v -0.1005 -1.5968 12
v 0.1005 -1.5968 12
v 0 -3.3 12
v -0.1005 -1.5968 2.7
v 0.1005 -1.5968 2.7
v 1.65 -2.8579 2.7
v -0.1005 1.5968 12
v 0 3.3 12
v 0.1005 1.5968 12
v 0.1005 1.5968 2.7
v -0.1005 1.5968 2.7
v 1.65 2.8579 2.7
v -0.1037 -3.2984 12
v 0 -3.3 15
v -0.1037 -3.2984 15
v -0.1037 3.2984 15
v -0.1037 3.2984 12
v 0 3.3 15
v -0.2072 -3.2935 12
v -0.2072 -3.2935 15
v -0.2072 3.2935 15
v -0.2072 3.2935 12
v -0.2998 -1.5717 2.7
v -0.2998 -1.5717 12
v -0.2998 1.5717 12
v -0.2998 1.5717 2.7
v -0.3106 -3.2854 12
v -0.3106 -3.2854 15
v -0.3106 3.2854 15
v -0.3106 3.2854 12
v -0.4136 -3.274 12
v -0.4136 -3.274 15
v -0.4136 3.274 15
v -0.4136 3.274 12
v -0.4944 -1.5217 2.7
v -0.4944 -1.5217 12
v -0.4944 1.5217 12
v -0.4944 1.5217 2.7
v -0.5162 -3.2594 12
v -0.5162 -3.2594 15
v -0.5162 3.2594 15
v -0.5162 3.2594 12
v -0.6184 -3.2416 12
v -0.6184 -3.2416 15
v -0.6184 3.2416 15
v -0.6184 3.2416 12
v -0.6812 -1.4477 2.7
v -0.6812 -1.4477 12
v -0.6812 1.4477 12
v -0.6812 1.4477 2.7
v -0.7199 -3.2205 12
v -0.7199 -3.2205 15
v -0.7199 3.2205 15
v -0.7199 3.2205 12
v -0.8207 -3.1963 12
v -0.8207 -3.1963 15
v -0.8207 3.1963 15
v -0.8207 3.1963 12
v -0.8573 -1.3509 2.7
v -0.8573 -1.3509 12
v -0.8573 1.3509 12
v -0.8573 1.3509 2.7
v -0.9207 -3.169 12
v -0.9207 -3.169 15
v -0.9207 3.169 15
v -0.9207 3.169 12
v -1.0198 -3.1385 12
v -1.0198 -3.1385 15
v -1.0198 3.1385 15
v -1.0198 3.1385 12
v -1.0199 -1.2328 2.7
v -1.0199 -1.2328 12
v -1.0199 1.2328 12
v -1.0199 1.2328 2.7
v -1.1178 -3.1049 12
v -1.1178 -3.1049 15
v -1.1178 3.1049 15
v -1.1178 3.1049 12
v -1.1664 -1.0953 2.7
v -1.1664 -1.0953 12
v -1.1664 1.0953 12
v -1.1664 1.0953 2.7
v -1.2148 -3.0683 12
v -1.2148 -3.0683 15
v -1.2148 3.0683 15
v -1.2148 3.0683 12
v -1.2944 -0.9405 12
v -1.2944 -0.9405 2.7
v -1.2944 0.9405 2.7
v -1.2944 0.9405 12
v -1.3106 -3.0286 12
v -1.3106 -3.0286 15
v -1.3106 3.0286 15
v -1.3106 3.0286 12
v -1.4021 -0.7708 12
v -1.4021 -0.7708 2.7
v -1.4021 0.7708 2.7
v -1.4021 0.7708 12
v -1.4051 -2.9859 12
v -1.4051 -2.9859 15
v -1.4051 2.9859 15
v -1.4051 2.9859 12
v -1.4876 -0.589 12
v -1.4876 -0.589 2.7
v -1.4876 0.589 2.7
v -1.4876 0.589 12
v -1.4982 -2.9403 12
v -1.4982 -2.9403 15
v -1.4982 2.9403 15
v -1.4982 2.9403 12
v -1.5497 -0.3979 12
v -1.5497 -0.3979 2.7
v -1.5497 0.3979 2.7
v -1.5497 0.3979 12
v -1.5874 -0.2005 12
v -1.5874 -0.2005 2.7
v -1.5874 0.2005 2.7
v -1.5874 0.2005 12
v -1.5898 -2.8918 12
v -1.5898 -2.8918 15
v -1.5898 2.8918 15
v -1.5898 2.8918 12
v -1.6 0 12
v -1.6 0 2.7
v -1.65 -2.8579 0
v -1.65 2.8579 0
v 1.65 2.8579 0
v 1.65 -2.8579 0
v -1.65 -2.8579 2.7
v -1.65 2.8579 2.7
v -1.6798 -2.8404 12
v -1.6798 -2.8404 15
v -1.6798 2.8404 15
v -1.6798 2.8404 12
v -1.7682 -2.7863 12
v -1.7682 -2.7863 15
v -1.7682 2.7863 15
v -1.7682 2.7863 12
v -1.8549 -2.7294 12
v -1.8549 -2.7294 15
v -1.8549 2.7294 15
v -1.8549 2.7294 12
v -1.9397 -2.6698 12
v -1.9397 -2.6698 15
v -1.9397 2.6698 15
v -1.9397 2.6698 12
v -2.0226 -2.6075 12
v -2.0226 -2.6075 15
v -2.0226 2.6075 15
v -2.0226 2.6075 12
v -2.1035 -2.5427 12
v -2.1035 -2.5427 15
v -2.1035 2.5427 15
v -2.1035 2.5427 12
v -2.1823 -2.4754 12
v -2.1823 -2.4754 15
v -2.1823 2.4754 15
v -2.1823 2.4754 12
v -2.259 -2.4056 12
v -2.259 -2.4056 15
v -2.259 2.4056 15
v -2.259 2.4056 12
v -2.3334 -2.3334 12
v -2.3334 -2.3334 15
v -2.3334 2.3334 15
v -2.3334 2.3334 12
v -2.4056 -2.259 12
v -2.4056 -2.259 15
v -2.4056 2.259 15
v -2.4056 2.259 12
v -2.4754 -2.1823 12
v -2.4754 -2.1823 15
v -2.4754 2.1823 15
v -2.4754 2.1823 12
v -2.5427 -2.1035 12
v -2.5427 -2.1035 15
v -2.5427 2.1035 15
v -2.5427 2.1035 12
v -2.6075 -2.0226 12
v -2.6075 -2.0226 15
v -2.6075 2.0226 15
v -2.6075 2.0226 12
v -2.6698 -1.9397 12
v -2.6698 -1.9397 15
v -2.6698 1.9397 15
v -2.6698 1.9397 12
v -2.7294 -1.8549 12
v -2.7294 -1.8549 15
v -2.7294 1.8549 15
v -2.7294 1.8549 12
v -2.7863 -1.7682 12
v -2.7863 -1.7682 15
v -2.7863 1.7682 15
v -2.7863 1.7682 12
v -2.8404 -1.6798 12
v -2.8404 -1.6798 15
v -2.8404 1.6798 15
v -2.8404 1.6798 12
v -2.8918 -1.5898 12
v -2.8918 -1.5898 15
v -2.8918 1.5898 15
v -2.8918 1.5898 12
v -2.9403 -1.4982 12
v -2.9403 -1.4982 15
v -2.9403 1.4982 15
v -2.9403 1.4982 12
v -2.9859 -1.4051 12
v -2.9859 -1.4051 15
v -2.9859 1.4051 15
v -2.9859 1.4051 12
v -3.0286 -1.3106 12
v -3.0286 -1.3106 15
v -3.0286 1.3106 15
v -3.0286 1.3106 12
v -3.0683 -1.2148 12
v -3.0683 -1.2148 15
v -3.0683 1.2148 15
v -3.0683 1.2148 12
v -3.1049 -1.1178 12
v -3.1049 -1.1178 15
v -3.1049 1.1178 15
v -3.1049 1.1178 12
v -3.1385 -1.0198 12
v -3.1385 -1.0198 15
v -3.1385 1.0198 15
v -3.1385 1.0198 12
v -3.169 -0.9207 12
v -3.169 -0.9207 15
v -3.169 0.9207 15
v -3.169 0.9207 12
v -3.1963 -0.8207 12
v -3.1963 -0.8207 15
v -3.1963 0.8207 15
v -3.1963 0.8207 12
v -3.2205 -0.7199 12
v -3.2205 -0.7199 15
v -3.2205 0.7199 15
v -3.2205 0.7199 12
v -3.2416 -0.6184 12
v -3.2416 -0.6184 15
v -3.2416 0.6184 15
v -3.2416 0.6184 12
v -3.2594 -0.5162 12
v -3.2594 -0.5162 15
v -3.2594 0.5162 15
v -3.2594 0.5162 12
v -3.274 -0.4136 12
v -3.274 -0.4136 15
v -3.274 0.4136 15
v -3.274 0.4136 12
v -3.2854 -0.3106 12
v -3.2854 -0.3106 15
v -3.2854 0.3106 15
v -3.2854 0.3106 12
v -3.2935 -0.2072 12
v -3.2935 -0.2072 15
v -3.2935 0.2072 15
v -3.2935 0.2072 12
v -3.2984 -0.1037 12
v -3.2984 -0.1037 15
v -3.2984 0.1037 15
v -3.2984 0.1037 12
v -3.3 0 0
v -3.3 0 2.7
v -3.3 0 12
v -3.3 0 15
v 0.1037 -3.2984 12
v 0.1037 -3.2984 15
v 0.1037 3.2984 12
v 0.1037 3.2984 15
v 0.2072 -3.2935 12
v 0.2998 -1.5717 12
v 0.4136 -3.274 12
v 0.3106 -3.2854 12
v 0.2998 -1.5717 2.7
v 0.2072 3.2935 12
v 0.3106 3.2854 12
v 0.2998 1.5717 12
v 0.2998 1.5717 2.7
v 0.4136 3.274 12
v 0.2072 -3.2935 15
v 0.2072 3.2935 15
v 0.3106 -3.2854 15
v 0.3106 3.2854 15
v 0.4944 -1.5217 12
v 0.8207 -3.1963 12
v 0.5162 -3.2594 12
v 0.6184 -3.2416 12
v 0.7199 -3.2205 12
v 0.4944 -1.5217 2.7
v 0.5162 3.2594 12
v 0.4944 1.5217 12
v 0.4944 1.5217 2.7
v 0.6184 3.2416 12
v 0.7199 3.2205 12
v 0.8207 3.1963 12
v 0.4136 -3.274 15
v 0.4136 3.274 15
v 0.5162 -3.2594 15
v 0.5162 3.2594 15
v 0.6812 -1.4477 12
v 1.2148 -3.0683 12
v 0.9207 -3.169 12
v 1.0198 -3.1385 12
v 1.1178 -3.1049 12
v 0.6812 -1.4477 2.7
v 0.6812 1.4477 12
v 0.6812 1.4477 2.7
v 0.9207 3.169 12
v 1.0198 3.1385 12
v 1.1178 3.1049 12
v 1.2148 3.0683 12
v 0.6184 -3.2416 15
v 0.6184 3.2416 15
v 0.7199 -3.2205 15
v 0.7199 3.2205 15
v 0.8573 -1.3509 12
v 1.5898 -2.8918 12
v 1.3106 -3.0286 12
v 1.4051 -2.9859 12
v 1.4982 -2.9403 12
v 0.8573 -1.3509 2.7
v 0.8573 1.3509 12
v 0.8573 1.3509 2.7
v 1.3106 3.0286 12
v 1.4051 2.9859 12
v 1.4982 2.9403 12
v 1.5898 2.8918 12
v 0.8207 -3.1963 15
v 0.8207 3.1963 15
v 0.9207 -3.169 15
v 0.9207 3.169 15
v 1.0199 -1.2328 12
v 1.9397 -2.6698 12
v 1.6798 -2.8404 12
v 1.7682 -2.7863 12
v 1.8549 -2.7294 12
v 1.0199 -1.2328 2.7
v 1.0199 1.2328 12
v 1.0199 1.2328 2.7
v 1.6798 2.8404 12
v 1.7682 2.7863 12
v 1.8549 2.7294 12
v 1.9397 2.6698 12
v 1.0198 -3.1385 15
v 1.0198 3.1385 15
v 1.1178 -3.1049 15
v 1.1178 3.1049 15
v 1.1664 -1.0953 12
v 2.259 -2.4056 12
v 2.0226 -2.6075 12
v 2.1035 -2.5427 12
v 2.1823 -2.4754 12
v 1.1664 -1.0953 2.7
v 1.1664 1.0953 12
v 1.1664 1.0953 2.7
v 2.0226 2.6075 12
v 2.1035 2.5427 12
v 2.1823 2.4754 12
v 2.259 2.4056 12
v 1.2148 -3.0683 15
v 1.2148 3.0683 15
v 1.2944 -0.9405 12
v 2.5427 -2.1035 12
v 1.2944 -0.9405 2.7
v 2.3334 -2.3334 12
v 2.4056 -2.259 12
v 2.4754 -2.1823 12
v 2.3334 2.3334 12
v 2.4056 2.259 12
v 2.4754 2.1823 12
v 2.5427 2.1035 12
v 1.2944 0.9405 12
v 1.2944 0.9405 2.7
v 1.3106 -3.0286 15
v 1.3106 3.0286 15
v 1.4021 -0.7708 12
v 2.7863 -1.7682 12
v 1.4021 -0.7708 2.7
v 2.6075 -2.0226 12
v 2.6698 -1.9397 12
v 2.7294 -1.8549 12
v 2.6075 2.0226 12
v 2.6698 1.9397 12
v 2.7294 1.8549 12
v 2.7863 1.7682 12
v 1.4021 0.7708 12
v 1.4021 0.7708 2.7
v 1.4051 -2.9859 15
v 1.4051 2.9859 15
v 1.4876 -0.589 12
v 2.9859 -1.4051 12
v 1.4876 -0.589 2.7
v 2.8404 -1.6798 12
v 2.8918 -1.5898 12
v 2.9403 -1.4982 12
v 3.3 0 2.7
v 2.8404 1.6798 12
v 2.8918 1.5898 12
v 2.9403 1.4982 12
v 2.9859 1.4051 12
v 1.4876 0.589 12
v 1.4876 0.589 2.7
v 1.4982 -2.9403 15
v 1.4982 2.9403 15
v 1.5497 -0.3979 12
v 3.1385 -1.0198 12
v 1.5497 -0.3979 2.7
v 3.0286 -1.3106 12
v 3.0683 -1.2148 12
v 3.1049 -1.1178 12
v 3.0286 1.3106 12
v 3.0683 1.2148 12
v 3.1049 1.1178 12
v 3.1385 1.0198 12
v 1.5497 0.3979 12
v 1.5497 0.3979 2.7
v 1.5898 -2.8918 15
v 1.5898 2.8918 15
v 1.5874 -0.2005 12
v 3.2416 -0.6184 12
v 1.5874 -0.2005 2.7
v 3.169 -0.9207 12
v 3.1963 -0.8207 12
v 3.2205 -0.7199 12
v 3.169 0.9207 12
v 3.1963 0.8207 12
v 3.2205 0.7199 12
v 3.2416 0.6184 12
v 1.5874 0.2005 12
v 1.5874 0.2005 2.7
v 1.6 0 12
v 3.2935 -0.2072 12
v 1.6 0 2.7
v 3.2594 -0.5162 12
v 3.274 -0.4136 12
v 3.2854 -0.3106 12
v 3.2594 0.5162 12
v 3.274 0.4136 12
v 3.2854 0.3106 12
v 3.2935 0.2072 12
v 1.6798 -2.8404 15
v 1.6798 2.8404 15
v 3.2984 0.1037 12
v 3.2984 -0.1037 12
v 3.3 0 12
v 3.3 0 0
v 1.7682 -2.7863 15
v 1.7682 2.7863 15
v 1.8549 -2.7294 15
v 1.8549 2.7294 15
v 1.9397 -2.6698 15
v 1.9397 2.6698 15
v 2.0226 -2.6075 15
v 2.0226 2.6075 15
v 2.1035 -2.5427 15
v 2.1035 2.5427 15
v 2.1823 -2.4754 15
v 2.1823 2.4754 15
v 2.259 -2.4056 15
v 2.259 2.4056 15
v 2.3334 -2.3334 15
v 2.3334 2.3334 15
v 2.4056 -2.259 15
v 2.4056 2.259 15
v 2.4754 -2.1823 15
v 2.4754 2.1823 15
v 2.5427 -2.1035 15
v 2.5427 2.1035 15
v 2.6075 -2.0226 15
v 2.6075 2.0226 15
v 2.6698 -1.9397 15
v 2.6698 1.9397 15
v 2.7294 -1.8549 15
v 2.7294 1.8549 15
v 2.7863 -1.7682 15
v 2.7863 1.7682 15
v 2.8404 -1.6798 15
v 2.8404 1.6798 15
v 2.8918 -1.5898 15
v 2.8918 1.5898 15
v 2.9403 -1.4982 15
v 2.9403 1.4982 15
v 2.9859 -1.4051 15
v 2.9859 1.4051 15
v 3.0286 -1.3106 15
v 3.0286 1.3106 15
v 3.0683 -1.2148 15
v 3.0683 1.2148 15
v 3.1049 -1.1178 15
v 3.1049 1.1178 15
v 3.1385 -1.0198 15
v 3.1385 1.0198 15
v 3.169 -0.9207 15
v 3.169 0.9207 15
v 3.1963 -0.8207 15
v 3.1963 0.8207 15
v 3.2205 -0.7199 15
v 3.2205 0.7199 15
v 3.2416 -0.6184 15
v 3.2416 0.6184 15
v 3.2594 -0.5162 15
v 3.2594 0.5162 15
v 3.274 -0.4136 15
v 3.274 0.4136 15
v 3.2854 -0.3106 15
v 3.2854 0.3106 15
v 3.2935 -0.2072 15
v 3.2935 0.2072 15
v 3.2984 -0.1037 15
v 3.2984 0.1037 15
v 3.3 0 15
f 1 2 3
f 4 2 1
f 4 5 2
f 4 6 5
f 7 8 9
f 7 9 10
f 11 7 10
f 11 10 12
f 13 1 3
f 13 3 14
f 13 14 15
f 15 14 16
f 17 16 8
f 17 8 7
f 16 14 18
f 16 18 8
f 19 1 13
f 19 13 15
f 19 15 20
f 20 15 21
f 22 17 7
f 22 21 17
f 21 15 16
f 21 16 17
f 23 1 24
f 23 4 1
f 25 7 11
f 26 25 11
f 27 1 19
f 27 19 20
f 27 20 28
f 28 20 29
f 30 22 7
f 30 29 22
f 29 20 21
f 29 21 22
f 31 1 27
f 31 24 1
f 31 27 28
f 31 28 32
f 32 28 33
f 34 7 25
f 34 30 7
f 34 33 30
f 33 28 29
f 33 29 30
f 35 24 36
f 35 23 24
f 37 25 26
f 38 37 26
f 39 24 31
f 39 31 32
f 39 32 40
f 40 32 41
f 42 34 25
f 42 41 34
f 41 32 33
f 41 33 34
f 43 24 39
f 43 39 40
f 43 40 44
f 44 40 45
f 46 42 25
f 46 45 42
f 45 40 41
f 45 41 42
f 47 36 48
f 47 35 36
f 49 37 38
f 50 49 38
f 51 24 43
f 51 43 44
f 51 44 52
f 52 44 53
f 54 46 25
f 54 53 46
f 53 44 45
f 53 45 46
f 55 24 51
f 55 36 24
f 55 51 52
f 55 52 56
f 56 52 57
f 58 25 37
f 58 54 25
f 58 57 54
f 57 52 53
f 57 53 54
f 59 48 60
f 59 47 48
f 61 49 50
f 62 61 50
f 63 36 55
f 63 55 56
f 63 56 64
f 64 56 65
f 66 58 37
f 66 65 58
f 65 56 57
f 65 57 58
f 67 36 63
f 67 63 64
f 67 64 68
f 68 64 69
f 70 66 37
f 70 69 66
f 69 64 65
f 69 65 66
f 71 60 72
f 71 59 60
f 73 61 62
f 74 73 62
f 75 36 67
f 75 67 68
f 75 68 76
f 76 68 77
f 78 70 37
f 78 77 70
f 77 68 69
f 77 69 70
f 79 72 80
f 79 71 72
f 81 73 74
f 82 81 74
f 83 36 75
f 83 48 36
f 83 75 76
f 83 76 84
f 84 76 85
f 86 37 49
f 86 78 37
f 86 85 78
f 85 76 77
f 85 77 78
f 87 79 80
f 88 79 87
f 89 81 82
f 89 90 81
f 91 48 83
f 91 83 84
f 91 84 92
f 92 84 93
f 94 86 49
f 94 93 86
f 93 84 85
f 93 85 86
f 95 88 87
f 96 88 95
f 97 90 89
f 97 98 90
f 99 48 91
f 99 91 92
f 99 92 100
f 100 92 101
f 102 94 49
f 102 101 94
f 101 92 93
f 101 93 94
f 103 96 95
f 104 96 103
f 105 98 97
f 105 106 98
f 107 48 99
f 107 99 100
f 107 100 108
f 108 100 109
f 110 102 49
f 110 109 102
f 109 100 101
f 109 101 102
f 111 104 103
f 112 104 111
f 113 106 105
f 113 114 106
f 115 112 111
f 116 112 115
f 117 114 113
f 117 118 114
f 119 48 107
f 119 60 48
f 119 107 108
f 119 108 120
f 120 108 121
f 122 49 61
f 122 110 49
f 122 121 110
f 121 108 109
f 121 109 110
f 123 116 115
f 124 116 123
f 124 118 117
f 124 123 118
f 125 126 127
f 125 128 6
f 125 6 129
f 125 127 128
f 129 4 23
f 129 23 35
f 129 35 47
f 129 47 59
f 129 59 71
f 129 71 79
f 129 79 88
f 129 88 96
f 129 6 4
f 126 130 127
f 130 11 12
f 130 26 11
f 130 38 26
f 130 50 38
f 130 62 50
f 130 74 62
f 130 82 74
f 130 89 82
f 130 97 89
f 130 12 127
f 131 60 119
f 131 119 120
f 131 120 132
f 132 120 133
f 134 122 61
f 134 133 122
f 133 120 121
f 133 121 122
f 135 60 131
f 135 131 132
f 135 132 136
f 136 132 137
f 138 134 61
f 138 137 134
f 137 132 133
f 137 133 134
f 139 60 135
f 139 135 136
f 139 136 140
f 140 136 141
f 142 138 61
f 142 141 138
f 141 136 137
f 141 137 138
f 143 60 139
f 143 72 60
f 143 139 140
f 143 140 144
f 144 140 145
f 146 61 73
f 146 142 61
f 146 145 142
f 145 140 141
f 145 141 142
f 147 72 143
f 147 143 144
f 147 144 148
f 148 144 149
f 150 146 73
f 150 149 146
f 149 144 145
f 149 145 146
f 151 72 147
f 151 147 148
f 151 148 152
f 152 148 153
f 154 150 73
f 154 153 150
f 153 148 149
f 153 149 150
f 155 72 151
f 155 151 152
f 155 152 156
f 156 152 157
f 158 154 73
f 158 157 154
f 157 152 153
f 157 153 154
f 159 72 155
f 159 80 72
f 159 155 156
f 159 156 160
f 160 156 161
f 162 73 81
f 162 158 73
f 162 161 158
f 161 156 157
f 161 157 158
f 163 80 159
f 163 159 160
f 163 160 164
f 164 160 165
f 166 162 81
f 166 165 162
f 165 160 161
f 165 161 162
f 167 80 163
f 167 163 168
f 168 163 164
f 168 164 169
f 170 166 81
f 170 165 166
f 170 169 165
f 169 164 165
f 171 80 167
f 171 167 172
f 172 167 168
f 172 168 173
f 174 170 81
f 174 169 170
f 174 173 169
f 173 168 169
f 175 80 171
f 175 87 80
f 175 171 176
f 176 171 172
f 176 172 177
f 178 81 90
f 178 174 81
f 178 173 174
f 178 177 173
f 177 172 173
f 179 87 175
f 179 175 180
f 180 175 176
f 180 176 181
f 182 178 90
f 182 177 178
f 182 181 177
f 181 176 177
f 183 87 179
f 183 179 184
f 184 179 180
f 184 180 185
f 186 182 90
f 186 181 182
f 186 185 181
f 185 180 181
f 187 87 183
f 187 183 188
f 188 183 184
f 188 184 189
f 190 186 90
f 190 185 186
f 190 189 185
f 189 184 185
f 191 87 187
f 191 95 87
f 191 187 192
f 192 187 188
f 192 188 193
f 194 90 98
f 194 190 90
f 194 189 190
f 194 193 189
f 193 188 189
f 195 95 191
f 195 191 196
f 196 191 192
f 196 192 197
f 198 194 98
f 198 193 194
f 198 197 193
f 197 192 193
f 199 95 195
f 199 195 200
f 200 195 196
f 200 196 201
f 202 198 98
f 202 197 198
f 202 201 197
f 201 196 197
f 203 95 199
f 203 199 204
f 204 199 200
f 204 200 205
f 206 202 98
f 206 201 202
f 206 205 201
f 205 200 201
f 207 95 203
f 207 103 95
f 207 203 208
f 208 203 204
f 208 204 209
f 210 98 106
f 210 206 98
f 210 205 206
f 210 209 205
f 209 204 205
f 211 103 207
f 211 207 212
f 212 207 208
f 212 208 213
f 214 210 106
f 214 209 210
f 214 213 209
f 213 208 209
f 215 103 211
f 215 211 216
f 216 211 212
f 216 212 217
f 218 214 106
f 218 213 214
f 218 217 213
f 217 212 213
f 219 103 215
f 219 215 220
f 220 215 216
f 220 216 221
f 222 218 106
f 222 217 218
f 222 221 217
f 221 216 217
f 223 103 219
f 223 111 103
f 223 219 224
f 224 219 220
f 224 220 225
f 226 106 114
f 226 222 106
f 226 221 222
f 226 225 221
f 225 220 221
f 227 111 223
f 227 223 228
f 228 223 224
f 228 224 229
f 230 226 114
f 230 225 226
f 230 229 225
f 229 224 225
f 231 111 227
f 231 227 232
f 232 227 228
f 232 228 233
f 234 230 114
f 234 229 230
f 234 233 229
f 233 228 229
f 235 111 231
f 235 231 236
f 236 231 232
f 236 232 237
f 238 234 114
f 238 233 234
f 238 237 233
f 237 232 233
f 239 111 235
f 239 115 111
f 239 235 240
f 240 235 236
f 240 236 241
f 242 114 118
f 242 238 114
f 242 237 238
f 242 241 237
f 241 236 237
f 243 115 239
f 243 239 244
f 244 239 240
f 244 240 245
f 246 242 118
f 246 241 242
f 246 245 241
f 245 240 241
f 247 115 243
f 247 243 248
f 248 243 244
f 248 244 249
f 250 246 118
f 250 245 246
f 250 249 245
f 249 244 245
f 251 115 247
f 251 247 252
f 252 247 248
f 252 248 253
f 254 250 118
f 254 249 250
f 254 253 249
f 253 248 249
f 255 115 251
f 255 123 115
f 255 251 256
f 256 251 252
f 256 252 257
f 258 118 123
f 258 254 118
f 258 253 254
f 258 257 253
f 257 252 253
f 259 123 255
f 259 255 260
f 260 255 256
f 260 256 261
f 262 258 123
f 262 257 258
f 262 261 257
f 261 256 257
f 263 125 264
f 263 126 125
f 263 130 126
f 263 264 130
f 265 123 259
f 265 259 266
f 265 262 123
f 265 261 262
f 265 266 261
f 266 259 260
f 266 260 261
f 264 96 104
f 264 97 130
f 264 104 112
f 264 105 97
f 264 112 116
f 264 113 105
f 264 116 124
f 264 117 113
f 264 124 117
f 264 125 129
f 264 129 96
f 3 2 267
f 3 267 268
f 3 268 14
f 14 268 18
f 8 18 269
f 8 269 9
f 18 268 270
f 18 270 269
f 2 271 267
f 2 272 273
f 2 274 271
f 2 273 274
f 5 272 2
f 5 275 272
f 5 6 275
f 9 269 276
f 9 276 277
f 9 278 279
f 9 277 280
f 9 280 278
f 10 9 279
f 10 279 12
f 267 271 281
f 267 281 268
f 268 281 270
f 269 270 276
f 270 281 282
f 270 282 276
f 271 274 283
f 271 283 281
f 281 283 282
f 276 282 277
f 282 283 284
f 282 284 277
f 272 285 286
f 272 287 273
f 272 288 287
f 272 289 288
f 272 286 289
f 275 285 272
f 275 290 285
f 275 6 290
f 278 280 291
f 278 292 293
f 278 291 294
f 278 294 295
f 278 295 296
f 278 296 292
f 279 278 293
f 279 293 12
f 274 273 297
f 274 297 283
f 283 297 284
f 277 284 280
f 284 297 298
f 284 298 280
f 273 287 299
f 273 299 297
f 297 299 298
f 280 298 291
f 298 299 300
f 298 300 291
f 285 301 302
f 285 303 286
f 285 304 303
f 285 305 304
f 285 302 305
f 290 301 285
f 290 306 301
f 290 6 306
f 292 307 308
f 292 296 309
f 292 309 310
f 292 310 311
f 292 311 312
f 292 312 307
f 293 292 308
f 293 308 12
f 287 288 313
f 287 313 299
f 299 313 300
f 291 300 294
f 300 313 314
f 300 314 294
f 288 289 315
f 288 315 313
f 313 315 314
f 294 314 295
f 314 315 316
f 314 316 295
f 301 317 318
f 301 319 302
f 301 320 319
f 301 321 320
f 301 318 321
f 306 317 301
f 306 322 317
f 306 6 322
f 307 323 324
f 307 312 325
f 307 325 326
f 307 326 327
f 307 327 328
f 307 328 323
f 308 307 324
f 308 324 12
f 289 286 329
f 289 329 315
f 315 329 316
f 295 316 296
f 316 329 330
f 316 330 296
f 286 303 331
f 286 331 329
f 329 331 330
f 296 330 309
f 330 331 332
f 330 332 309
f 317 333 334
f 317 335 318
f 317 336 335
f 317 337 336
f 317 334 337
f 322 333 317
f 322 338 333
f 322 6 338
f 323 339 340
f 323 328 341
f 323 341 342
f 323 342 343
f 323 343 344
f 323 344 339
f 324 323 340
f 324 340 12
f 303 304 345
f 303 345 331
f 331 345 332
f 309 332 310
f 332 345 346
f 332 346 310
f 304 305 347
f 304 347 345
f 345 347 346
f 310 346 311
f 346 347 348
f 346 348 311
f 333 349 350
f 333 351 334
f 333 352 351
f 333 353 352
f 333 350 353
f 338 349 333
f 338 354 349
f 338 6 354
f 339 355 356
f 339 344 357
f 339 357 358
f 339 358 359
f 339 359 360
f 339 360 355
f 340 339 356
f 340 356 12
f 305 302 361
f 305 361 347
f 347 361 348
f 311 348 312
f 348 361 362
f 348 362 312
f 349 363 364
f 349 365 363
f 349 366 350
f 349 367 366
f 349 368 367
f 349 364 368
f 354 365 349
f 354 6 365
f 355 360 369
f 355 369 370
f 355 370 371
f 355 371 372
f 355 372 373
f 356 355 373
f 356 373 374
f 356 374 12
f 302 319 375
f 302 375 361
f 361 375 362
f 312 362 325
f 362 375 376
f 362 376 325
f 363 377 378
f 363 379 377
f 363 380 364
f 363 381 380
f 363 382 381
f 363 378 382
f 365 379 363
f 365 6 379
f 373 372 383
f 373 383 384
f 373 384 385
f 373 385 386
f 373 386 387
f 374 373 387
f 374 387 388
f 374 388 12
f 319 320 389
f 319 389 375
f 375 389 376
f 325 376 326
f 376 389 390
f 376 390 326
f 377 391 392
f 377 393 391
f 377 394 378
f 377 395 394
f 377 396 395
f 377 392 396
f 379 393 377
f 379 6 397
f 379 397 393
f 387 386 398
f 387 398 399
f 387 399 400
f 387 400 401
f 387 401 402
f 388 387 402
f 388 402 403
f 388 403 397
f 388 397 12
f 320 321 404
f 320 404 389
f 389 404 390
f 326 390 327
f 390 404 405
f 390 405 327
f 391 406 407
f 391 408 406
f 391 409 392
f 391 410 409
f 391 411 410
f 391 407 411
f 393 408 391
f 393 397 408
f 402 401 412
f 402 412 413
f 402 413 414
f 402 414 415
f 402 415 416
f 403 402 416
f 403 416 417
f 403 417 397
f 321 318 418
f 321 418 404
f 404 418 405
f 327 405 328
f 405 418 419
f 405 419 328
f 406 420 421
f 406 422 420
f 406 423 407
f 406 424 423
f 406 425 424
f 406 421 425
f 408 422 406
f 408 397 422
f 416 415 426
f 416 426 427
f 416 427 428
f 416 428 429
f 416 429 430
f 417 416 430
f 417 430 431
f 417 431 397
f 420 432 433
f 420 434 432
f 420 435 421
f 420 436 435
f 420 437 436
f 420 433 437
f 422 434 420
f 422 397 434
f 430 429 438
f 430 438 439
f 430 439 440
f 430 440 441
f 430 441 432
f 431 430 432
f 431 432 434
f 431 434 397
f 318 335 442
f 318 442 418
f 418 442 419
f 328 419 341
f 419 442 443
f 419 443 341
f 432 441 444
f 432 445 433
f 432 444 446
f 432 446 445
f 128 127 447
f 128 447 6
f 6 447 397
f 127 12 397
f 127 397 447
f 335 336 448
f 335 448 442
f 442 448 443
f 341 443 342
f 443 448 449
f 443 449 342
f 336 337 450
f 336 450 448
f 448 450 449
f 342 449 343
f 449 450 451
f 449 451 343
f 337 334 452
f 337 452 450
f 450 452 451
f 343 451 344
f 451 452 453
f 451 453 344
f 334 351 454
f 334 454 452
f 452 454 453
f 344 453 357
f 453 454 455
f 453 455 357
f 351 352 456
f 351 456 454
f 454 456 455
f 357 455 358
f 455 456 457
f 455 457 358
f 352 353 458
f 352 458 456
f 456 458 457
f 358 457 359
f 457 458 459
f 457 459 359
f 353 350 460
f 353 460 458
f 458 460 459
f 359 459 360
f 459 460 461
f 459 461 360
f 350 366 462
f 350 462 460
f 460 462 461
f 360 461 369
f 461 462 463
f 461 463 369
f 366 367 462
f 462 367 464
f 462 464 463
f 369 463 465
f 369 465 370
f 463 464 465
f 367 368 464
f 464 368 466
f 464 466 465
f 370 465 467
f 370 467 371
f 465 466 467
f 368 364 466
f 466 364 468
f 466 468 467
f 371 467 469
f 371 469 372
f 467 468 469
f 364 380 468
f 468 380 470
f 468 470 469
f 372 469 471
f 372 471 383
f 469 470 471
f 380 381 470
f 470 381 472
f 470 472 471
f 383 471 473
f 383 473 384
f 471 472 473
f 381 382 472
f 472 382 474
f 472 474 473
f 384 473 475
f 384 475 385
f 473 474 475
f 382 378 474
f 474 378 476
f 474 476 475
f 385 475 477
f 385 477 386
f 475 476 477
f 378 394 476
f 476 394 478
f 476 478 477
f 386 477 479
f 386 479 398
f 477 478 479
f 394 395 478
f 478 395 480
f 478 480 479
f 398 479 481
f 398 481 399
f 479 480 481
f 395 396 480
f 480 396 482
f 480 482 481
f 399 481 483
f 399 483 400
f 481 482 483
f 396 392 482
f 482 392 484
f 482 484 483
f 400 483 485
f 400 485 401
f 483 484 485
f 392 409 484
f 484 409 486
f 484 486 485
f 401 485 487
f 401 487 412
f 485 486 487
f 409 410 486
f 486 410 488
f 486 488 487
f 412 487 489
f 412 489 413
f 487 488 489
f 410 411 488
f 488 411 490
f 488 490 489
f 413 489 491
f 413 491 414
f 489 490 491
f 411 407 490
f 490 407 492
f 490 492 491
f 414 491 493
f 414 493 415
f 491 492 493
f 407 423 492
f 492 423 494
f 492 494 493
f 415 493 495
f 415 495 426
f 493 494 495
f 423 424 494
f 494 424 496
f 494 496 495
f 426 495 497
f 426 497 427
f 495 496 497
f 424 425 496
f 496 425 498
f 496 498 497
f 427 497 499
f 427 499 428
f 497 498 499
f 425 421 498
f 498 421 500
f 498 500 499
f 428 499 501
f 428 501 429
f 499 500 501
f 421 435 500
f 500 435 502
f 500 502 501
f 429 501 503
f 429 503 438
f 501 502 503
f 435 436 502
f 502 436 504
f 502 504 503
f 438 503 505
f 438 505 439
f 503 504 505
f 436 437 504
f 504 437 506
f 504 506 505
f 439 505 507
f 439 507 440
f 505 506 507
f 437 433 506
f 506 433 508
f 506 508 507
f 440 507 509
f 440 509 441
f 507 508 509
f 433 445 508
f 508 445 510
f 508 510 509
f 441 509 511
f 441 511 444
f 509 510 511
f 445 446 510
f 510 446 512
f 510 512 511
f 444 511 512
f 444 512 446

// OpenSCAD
// file: ../configuration.scad
//$fn=40; // model faces resolution.

//COMMON PARAMETERS
global_clearance = 0.5; // additional space where needed due to printer precision
layer_thickness = 0.3; // layer which is going to be removed after printing
//M3 x 12 Bolt
M3_nut_diameter = 6.6;
M3_nut_height = 2.7;
M3_bolt_diameter = 3.2;
M3_bolt_head_height = 3;
M3_bolt_length = 12;
//M5 Bolt
M5_bolt_diameter = 5.5;
M5_nut_height = 4.5;
M5_nut_diameter = 9.4;
//M6 Bolt
M6_bolt_diameter = 6.5;
M6_nut_height = 4.9;
M6_nut_diameter = 11.8;


//----------------------------------------------------------------
//----------------------------------------------------------------
//WINDGAUGE02A_S02 - Parametry pro hlavni valec anemometru
S01_hloubka_zavitu=4;
S01_vyska=110; //80
S01_prumer_vnitrni=50;
S01_sila_materialu=1.2;
S01_vyska_horni_zavit=10;
S01_vyska_spodniho_zavitu=10;
S01_sila_drzaku_RJ11=3; //vyška drážky
S01_hrana_A_RJ11=12.3;
S01_hrana_B_RJ11=19;
S01_tolerance_zavit=1.5;

//Rozměry ložiska se závity
//LO_spodni_prumer=22;
LO_spodni_prumer=16.7; //bez krytu
slip_ring_mount_height=1.5;
slip_ring_mount_diameter=16.7;
LO_horni_prumer=7.7;
//LO_vyska_spodni_doraz=5;
//LO_vyska_horni_doraz=9;
//LO_vyska_dorazu=0;
slip_ring_body_height = 16;
slip_ring_body_diameter = 19.8;



//Obecné parametry
prumer_osicky=5.1;



//Parametry loziska
lozisko_prumer_vnitrni=4.9;
lozisko_prumer_vnejsi=16.1;
lozisko_vyska=5;
lozisko_prekryv=1.5;

//Parametry magnetu
magnet_prumer=6.3;
magnet_vyska=5;
magnet_zapusteni=2;
magnet_tolerance_prumeru=0.2;

//Parametry sroubu
prumer_sroubu=3.4;
prumer_hlavy_sroubu=8.2;
vyska_hlavy_sroubu=4.3;
vyska_matky=3;
sirka_matky=6.7;

sirka_matky_tol=0.175;
prumer_orechu=10;

//WINDGAUGE02A_R01 //pro lopatku
L01_hrana_drzaku_a=10;
L01_hrana_drzaku_b=3;
L01_delka_uchytu=19;
L01_prumer_lopatky=40;
L01_sila_materialu_lopatky=0.9;

//WINDGAUGE02A_D02 Anemometer holder
//   | |   Top ring with Screw-thread
//  /   \  Body
// |_____| Base
D02_magnet_base_height = 4.5 + 1.5*global_clearance; // HS-13 M5 magnet height without bolt
D02_magnet_diameter = 16.1 + global_clearance; // HS-13 M5 magnet diameter
D02_flat_magnet_diameter = 18.1 + global_clearance; // HS-13 M5 magnet diameter
D02_wall_thickness = 5; // body wall thickness
D02_connector_spacing = 40; // main body cut-through for connectors
D02_base_diameter = 140; // diameter of holder base
D02_base_height = max(M6_nut_height + 1.5,
                      D02_magnet_base_height + M5_nut_height/2 + 1.5); // height of holder base
D02_body_height = 60 - D02_base_height; // height of body between base and top ring
D02_screw_diameter = S01_prumer_vnitrni - S01_tolerance_zavit; // scew-thread diameter based on stand S01
D02_thread_height = S01_vyska_spodniho_zavitu; // screw-thread height based on stand S01
D02_top_ring_inner_diameter = D02_screw_diameter - 6; // inner diameter of top ring
D02_top_ring_outer_diameter = D02_screw_diameter + 4; // outer diameter of top ring
D02_top_ring_height = D02_thread_height + 5; // height of top ring
D02_total_height = D02_base_height + D02_body_height + D02_top_ring_height; // total height of anemometer holder
// Following parameters are obsolete, maintained only for compatibility.
D01_material_pod_zavitem = D02_top_ring_height - D02_thread_height;
D01_material_za_zavitem = D02_screw_diameter - D02_top_ring_inner_diameter;
D01_material_pred_zavitem = D02_top_ring_outer_diameter - D02_screw_diameter;
D01_polomer_zakladny = D02_base_diameter/2;
D01_sila_setny_spodniho_drzaku=D02_wall_thickness;
D01_vyska_spodni_casti_drzaku = D02_body_height + D02_base_height;
D01_sirka_otvoru_pro_konektor = D02_connector_spacing;
D01_ucyhtna_matice_material_nad = D02_base_height - M6_nut_height;
D01_uchytna_matice_vyska = M6_nut_height;
D01_uchytna_matice_sirka = M6_nut_diameter;
D01_uchytny_sroub_prumer = M6_bolt_diameter;

// Following parameters are actually used in D01 model.
//WINDGAUGE02A_D02 //uchyt na sloup
D02_sila_materialu=6;
D02_vyska_uchytky=40;
D02_prumer_obruby=27; // 3/4 trubka
D02_delka_celeho_uchytu=60;
D02_dotahova_vzdalenost=1.5;
D02_prumer_uchytneho_sroubu=4.2;
D02_sirka_matky=9.1; //pro M4
D02_vyska_matky=3;


//WINDGAUGE02A_R01 //rotor s prekritim statoru
R01_vyska_prekryti_statoru=10;
R01_sila_materialu_pro_prekriti=1.3;
R01_mezera_mezi_statorem_rotorem=3;

//WINDGAUGE02A_R03 //drzak magnetu
R05_sirka_matky=10;



R03_prumer_zavitu=40;
R04_zavit_vyska=5;
R02_zavit_vyska=10;
R01_zavit_vyska=5;
R03_mezera_mezi_statorem_rotorem=3;

R02_delka_kridla=45;
R02_vzdalenost_der=25;

R02_delka_vyrovnnavaci_tyce=35;
R02_hrana_drzaku=14;
R02_sila_materialu_pod_tyci=5;
R02_sila_materialu_kridla=1.2;
R02_sila_materialu_kridla_tolerance=0.3;

R05_vyska_kridla=100;
R05_delka_kridla=100;


//S04
I2CDIFF01A_sirka_kon=16.5; //sirka konektoru
I2CDIFF01A_vyska_kon=13.5; //vyska konektoru
I2CDIFF01A_sirka_mod_otvory=4; //kolik modul zabira der
I2CDIFF01A_vyska_PCB=2; //vyska mezi albase a konektorem
S04_sila_materialu=2;

//S04_USBI2C01A
USBI2C01A_sirka_kon=12; //sirka konektoru
USBI2C01A_vyska_kon=11; //vyska konektoru
USBI2C01A_sirka_mod_otvory=3; //kolik modul zabira der
USBI2C01A_vyska_PCB=2; //vyska mezi albase a konektorem


//WINDGAUGE03A_R03 // Venturi tube
R03_wide_D = 36; // Venturi wide tube inner diameter
R03_narrow_D = R03_wide_D/1.7; // Venturi narrow tube inner diameter
R03_global_clearance = global_clearance; // additional space where needed due to printer precision
R03_PCB_top_rim = 5.5; // vertical distance from top of tube to top of PCB
R03_PCB_height = 41; // height of PCB casing - if changed check casing
R03_PCB_width = 14; // width of PCB casing - if changed check casing
R03_PCB_depth = 3.7; // depth of PCB casing - if changed check casing
R03_PCB_connector_overlay = 2.5; // additional depth of PCB casing on connectors side - if changed check casing
R03_PCB_elevation = 2; // additional elevation of PCB for waterproofing
R03_air_tube_diameter = 2; // air tubes diameter
R03_sensor_housing_offset = 15;  // distance from venturi tube height to sensor housing drop
R03_sensor_offset = 2.2;  // SDP33 distance from PCB border to sensor
R03_sensor_pitch = 4.3;  // SDP33 distance between sensors
R03_sensor_diameter = 3.5;  // SDP33 sensor diameter
R03_sensor_depth = 2.5;  // SDP33 sensor depth
R03_slip_ring_offset = 0; // slip-ring offset from tube center
R03_venturi_tube_height = 150;  // Venturi tube height (limited by max print size)
R03_wall_thickness = 5; // Venturi tube wall thickness
R03_sealing_ring_thickness = 1.5; // sealing ring size
R03_fin_width = 0.8; // width of vertical stabilizator
R03_fin_length = 80; // length of vertical stabilizator
R03_fin_height = 150; // height of vertical stabilizator
R03_fin_holder_width = M3_bolt_length + M3_nut_height;
R03_fin_holder_height = M3_nut_diameter + 2*R03_wall_thickness;
R03_fin_holder_depth = R03_wide_D/2 + R03_fin_holder_height;
R03_balance_shelf_width = 20; // width of shelf for balance weights
R03_balance_shelf_height = 10; // height of shelf for balance weights
// main file
include <../configuration.scad>
$fn=200;

cylinder(h = M3_bolt_length, d = M3_bolt_diameter, $fn=50);
cylinder(h = M3_nut_height, d = M3_nut_diameter, $fn=6);
translate([0, 0, M3_bolt_length])
    cylinder(h = M3_bolt_head_height, d = M3_nut_diameter);
